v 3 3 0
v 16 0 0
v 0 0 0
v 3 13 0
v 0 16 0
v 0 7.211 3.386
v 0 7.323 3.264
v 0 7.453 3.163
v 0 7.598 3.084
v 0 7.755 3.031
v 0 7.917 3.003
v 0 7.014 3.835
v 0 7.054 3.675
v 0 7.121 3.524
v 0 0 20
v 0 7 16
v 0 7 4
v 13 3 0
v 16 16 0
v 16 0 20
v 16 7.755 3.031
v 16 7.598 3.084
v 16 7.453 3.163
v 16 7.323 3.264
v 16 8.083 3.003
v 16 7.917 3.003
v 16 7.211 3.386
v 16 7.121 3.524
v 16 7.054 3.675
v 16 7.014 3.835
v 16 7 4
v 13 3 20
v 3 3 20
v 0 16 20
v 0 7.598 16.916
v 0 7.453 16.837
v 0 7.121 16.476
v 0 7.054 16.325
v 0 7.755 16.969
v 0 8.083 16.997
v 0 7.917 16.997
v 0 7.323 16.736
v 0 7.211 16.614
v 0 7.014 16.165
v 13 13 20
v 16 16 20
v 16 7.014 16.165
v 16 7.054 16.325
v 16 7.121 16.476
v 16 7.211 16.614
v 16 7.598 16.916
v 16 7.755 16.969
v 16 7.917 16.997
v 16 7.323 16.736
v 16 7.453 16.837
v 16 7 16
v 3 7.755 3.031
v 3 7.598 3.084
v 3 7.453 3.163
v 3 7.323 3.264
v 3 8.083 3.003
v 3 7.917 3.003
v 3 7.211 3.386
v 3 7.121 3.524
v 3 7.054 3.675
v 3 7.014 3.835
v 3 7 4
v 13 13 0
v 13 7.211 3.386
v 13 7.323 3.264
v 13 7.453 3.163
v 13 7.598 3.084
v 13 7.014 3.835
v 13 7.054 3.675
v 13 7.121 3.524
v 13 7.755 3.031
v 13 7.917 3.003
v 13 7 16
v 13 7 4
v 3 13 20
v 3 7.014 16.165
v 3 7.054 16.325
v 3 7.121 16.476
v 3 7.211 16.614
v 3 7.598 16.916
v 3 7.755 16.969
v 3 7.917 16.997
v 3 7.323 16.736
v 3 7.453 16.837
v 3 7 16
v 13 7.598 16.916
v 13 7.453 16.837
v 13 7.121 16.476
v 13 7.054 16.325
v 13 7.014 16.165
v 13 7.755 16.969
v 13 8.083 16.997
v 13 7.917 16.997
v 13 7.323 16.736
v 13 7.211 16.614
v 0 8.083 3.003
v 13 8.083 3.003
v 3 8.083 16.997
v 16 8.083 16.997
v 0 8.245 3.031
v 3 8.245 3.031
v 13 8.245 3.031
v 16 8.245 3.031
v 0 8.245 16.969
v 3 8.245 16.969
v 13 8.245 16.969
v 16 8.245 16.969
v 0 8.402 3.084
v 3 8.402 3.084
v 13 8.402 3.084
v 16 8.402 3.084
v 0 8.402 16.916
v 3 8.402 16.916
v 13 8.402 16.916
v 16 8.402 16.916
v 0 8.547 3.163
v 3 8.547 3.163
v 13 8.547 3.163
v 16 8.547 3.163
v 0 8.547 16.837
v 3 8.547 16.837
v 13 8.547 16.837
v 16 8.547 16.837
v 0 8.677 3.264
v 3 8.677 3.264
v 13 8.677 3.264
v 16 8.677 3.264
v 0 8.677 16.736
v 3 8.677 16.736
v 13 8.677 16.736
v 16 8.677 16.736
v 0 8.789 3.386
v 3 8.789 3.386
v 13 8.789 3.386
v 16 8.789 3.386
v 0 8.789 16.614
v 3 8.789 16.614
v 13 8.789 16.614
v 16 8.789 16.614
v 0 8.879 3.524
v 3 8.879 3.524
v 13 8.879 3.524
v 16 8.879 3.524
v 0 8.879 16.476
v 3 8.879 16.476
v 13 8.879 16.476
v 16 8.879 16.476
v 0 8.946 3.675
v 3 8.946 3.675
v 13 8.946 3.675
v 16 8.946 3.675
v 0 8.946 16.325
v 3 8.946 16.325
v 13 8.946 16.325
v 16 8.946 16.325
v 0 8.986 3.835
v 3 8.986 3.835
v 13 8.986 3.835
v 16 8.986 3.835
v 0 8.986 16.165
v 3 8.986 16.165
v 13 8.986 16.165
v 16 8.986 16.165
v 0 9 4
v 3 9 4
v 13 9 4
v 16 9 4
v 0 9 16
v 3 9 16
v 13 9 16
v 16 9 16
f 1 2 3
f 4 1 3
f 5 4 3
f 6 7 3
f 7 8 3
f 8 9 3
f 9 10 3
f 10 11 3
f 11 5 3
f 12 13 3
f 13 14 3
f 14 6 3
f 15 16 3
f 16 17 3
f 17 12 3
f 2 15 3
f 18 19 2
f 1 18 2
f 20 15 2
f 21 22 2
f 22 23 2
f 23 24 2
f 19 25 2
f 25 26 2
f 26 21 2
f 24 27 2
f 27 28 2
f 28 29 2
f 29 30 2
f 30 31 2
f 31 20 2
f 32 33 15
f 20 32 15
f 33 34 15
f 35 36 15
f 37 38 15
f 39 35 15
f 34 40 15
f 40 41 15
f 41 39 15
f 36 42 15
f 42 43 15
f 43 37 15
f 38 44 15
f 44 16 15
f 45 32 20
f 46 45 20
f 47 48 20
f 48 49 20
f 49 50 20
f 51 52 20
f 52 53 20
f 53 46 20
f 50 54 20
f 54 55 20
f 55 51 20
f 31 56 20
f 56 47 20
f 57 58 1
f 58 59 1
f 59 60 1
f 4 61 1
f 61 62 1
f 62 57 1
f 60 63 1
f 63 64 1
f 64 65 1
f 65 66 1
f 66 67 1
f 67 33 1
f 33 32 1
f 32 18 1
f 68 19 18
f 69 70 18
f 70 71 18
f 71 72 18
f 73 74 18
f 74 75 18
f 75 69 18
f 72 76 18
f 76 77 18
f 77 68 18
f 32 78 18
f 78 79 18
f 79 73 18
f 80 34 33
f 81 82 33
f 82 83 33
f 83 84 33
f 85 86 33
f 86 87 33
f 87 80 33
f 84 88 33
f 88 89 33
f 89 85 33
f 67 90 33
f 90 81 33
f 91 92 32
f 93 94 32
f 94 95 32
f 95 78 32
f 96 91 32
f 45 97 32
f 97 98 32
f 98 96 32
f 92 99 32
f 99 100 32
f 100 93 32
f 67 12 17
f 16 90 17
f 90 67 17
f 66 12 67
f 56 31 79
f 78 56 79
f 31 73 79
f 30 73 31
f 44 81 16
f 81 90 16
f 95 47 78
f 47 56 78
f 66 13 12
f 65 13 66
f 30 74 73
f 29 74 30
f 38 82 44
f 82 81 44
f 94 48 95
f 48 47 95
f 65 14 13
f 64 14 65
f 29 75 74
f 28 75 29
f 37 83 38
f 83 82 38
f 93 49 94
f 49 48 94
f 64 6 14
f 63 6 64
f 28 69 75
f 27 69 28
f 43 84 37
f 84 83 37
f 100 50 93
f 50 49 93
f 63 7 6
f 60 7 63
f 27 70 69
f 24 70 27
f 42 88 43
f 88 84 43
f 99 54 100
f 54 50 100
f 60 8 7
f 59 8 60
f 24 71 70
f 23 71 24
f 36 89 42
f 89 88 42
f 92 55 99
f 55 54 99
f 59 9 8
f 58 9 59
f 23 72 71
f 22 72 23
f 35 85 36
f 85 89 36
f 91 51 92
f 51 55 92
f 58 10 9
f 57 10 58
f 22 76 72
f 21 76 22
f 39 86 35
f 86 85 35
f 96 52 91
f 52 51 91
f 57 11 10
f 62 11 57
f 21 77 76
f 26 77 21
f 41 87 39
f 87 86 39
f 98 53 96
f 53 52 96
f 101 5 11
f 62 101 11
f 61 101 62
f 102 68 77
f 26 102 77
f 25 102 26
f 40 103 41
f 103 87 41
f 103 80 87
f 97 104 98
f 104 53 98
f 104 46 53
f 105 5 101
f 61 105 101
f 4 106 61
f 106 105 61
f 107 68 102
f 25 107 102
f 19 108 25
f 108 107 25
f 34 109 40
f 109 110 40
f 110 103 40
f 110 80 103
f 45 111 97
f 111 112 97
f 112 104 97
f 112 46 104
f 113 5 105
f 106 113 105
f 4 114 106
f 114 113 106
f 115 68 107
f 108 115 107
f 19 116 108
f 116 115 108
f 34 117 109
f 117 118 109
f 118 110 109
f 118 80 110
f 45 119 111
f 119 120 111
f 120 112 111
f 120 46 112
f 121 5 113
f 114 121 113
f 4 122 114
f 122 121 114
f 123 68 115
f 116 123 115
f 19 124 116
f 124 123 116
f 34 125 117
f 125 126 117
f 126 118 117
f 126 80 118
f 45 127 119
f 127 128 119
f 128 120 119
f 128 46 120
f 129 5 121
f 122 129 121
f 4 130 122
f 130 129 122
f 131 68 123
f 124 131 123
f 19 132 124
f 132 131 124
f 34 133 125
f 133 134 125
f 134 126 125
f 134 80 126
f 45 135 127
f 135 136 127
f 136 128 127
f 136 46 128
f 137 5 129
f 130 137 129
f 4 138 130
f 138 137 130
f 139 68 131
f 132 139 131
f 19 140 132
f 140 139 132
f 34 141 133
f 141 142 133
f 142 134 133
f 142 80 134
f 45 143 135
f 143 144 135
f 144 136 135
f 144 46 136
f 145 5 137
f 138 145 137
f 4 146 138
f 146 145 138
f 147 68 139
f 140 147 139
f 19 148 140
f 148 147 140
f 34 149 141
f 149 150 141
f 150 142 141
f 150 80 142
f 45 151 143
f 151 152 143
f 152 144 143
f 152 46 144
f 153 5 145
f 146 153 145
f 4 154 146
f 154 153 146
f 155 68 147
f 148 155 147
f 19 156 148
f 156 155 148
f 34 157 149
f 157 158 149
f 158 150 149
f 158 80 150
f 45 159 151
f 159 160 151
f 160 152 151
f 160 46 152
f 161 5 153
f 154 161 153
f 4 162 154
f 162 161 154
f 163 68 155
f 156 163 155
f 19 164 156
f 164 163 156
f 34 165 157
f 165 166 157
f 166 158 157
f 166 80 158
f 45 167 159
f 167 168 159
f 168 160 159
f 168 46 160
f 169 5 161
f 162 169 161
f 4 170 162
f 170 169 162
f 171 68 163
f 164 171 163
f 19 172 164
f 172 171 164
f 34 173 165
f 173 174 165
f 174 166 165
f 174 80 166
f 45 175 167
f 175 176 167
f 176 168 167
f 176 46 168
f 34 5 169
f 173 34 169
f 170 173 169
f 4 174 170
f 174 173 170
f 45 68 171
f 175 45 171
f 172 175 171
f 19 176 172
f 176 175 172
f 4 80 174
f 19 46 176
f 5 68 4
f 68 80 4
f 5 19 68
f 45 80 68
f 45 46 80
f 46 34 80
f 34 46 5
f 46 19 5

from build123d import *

# Parameters (mm, degrees)
SKETCH_1_W          = 16
SKETCH_1_H          = 16
SKETCH_1_W_2        = 10
SKETCH_1_H_2        = 10
EXTRUDE_1_DEPTH     = 20
CUT_EXTRUDE_1_DEPTH = 16


with BuildPart() as part:
    # 草图1 → 凸台-拉伸1 (new body)
    with BuildSketch(Plane.XY):
        with Locations((8, 8)):
            Rectangle(SKETCH_1_W, SKETCH_1_H)
        with Locations((8, 8)):
            Rectangle(SKETCH_1_W_2, SKETCH_1_H_2, mode=Mode.SUBTRACT)
    extrude(amount=EXTRUDE_1_DEPTH)

    # 草图2 → 切除-拉伸1 (cut)
    with BuildSketch(Plane(origin=(16, 0, 0), x_dir=(0, 0, -1), z_dir=(1, 0, 0))):
        with BuildLine():
            Line((-4, 9), (-16, 9))
            ThreePointArc((-16, 9), (-15.292893219, 8.707106781), (-15, 8))
            ThreePointArc((-15, 8), (-15.292893219, 7.292893219), (-16, 7))
            Line((-16, 7), (-4, 7))
            ThreePointArc((-4, 7), (-5, 8), (-4, 9))
        make_face()
        with BuildLine():
            ThreePointArc((-3, 8), (-3.292893219, 8.707106781), (-4, 9))
            Line((-4, 9), (-4, 7))
            ThreePointArc((-4, 7), (-3.292893219, 7.292893219), (-3, 8))
        make_face()
        with BuildLine():
            Line((-4, 7), (-4, 9))
            ThreePointArc((-4, 9), (-5, 8), (-4, 7))
        make_face()
        with BuildLine():
            ThreePointArc((-15, 8), (-15.292893219, 8.707106781), (-16, 9))
            Line((-16, 9), (-16, 7))
            ThreePointArc((-16, 7), (-15.292893219, 7.292893219), (-15, 8))
        make_face()
        with BuildLine():
            Line((-16, 7), (-16, 9))
            ThreePointArc((-16, 9), (-17, 8), (-16, 7))
        make_face()
    extrude(amount=-CUT_EXTRUDE_1_DEPTH, mode=Mode.SUBTRACT)


solid = part.part
